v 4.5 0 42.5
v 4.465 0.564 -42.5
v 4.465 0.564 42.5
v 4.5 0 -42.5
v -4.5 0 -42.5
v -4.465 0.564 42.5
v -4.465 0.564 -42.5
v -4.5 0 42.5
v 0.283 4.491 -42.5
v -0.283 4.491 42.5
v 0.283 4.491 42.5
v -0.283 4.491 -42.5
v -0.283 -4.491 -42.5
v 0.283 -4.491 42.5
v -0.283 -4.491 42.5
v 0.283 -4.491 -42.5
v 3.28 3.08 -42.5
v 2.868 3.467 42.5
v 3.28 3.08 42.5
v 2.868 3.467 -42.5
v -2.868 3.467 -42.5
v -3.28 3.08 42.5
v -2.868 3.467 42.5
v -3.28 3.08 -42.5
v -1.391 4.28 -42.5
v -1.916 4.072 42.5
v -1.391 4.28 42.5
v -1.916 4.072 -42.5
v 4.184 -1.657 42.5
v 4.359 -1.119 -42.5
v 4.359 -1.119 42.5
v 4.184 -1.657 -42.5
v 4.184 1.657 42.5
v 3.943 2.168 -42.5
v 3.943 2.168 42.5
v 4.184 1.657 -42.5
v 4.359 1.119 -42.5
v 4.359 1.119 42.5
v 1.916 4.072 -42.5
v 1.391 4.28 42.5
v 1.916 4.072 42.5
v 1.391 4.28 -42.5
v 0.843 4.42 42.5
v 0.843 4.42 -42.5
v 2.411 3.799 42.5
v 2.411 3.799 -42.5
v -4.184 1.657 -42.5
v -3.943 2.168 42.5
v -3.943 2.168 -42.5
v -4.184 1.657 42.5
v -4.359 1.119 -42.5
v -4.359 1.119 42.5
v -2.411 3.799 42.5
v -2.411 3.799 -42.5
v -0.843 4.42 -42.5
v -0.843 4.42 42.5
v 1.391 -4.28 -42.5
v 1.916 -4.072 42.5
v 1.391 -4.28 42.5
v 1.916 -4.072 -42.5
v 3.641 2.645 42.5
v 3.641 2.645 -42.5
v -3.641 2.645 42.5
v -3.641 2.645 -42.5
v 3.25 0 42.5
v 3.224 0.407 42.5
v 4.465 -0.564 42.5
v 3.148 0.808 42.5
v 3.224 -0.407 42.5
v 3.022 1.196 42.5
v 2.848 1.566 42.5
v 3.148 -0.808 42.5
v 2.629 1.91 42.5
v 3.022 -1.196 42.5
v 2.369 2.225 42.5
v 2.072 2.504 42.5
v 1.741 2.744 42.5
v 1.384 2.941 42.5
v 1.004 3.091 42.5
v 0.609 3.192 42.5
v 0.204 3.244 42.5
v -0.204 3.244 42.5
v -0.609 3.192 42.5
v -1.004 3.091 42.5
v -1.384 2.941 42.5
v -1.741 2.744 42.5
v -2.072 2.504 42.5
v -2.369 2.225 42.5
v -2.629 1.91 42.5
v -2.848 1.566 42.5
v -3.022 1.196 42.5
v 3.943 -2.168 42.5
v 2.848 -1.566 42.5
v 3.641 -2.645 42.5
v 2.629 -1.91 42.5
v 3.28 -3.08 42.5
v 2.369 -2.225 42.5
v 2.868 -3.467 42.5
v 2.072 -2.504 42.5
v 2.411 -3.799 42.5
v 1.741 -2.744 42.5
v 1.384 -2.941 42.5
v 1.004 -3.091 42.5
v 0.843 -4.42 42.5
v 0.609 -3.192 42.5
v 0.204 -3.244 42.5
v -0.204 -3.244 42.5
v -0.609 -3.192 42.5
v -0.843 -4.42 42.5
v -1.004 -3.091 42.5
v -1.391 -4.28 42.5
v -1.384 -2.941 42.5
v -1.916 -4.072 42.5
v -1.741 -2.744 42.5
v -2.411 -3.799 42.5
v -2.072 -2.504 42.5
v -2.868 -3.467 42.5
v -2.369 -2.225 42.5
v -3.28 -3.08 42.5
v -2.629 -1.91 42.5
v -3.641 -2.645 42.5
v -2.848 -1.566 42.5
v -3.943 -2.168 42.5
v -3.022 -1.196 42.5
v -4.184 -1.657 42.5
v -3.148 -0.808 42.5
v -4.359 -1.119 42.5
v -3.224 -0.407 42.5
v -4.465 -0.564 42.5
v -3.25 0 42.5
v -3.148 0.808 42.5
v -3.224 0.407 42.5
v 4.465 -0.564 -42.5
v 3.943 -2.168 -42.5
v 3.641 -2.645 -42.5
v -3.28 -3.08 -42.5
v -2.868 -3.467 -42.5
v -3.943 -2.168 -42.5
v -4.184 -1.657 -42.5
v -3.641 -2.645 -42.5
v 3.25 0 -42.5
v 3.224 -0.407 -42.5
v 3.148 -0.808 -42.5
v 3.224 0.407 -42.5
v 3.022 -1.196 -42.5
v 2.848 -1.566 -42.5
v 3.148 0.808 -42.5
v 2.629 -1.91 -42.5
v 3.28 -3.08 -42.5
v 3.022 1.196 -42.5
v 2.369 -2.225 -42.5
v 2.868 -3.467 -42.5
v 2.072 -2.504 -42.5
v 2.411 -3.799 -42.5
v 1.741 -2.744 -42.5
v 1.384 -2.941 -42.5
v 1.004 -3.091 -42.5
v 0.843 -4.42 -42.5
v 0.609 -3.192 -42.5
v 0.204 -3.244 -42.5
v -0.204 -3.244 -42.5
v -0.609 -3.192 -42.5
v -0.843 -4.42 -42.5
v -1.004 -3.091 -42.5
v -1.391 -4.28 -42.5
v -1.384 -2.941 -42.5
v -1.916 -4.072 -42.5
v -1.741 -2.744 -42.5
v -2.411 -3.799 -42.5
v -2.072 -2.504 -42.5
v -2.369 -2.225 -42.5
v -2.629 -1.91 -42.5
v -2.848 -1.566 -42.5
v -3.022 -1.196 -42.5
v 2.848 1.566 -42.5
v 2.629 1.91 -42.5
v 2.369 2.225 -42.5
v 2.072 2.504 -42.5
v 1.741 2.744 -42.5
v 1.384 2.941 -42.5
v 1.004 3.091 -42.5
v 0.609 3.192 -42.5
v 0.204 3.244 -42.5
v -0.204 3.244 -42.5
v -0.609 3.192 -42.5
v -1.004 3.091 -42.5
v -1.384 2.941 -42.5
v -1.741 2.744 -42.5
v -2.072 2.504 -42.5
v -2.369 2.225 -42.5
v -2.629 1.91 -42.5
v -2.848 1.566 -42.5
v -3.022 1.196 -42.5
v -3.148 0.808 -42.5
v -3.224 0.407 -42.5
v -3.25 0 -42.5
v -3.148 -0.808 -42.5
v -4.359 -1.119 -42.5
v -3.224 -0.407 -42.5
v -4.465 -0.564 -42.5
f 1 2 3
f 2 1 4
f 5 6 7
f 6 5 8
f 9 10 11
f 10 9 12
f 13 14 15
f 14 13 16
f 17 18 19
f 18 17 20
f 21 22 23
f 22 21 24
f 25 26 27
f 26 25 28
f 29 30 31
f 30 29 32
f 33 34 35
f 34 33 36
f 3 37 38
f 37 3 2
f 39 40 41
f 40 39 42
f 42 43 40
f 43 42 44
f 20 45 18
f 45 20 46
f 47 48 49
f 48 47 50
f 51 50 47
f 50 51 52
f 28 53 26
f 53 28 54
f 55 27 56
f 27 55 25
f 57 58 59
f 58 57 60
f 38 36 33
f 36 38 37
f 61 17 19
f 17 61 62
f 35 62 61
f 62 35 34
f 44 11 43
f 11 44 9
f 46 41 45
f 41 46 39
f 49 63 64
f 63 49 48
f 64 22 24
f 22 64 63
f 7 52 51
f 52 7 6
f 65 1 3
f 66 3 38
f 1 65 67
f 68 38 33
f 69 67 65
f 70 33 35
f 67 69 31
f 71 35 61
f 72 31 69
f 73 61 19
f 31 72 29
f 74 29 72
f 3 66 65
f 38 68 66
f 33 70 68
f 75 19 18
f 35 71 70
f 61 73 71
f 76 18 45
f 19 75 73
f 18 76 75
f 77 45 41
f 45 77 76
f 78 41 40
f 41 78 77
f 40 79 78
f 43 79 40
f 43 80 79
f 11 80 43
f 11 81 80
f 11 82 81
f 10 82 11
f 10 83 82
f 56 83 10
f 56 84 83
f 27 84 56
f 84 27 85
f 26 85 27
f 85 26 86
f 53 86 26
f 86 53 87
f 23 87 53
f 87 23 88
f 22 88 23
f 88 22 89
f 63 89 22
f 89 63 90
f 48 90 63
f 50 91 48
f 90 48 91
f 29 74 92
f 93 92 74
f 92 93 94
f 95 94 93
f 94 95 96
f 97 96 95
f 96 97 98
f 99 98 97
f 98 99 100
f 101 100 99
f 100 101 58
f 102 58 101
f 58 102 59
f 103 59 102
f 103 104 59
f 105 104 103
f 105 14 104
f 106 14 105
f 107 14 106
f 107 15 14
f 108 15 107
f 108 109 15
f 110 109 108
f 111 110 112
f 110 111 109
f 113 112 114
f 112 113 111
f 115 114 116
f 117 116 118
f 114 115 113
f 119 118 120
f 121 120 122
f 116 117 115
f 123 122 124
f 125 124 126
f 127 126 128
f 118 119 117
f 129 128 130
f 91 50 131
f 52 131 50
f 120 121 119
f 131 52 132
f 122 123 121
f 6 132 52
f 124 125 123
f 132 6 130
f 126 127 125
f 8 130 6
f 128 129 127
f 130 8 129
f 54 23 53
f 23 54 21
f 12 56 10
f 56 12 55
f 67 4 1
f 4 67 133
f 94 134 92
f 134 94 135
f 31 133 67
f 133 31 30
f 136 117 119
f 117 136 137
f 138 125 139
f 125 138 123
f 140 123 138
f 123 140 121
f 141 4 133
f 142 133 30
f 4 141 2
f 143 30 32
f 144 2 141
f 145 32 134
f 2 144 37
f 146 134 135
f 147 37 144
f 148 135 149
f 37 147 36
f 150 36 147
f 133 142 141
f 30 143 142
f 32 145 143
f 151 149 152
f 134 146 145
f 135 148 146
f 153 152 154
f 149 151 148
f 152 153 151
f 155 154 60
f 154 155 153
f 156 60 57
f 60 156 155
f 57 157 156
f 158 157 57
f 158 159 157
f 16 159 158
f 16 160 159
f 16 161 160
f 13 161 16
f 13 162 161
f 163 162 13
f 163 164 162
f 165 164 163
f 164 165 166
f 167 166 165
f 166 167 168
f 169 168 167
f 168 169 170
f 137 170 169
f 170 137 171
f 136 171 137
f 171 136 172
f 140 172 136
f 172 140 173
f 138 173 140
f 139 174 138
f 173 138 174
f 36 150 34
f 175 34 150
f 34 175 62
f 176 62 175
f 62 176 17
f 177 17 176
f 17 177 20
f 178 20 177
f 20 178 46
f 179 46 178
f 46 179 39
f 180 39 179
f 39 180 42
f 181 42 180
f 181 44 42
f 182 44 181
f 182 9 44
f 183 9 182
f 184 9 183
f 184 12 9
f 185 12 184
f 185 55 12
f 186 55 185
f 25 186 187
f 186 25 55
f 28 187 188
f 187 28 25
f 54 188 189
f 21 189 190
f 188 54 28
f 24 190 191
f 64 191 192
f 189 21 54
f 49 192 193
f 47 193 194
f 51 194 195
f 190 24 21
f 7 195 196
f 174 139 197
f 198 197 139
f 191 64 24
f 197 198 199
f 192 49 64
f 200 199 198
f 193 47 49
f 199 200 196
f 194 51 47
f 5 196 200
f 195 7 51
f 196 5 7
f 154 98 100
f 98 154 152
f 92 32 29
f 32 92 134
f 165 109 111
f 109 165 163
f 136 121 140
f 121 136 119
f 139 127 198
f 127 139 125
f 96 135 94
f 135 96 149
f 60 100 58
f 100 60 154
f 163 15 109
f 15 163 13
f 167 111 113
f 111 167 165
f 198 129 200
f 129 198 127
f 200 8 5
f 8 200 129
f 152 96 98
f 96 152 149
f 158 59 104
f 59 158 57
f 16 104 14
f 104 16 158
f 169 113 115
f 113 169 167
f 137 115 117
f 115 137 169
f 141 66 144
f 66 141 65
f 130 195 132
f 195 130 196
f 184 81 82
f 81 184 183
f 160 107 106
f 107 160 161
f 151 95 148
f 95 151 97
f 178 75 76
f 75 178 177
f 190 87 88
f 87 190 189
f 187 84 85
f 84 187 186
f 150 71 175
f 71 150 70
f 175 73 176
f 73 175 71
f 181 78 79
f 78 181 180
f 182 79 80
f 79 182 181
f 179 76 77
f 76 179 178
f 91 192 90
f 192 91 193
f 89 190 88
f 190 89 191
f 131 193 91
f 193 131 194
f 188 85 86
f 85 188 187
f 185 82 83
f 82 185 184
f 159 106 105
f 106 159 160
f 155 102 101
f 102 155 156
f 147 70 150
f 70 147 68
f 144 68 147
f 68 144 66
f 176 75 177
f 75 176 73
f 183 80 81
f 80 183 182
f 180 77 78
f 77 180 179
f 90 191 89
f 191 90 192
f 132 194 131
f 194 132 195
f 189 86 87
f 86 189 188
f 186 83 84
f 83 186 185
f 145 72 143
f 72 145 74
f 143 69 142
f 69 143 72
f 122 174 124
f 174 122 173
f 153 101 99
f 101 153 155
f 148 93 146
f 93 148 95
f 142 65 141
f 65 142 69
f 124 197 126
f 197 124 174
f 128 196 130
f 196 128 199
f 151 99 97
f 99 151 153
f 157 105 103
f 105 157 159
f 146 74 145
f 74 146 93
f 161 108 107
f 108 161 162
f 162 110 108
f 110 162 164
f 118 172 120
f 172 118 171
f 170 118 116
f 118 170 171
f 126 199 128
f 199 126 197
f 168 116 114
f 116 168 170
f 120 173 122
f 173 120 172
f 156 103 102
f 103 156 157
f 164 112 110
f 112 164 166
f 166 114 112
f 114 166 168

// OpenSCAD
$fn = 50;


difference() {
	union() {
		translate(v = [0, 0, -42.5000000000]) {
			cylinder(h = 85, r = 4.5000000000);
		}
	}
	union() {
		translate(v = [0, 0, -100.0000000000]) {
			cylinder(h = 200, r = 3.2500000000);
		}
	}
}
